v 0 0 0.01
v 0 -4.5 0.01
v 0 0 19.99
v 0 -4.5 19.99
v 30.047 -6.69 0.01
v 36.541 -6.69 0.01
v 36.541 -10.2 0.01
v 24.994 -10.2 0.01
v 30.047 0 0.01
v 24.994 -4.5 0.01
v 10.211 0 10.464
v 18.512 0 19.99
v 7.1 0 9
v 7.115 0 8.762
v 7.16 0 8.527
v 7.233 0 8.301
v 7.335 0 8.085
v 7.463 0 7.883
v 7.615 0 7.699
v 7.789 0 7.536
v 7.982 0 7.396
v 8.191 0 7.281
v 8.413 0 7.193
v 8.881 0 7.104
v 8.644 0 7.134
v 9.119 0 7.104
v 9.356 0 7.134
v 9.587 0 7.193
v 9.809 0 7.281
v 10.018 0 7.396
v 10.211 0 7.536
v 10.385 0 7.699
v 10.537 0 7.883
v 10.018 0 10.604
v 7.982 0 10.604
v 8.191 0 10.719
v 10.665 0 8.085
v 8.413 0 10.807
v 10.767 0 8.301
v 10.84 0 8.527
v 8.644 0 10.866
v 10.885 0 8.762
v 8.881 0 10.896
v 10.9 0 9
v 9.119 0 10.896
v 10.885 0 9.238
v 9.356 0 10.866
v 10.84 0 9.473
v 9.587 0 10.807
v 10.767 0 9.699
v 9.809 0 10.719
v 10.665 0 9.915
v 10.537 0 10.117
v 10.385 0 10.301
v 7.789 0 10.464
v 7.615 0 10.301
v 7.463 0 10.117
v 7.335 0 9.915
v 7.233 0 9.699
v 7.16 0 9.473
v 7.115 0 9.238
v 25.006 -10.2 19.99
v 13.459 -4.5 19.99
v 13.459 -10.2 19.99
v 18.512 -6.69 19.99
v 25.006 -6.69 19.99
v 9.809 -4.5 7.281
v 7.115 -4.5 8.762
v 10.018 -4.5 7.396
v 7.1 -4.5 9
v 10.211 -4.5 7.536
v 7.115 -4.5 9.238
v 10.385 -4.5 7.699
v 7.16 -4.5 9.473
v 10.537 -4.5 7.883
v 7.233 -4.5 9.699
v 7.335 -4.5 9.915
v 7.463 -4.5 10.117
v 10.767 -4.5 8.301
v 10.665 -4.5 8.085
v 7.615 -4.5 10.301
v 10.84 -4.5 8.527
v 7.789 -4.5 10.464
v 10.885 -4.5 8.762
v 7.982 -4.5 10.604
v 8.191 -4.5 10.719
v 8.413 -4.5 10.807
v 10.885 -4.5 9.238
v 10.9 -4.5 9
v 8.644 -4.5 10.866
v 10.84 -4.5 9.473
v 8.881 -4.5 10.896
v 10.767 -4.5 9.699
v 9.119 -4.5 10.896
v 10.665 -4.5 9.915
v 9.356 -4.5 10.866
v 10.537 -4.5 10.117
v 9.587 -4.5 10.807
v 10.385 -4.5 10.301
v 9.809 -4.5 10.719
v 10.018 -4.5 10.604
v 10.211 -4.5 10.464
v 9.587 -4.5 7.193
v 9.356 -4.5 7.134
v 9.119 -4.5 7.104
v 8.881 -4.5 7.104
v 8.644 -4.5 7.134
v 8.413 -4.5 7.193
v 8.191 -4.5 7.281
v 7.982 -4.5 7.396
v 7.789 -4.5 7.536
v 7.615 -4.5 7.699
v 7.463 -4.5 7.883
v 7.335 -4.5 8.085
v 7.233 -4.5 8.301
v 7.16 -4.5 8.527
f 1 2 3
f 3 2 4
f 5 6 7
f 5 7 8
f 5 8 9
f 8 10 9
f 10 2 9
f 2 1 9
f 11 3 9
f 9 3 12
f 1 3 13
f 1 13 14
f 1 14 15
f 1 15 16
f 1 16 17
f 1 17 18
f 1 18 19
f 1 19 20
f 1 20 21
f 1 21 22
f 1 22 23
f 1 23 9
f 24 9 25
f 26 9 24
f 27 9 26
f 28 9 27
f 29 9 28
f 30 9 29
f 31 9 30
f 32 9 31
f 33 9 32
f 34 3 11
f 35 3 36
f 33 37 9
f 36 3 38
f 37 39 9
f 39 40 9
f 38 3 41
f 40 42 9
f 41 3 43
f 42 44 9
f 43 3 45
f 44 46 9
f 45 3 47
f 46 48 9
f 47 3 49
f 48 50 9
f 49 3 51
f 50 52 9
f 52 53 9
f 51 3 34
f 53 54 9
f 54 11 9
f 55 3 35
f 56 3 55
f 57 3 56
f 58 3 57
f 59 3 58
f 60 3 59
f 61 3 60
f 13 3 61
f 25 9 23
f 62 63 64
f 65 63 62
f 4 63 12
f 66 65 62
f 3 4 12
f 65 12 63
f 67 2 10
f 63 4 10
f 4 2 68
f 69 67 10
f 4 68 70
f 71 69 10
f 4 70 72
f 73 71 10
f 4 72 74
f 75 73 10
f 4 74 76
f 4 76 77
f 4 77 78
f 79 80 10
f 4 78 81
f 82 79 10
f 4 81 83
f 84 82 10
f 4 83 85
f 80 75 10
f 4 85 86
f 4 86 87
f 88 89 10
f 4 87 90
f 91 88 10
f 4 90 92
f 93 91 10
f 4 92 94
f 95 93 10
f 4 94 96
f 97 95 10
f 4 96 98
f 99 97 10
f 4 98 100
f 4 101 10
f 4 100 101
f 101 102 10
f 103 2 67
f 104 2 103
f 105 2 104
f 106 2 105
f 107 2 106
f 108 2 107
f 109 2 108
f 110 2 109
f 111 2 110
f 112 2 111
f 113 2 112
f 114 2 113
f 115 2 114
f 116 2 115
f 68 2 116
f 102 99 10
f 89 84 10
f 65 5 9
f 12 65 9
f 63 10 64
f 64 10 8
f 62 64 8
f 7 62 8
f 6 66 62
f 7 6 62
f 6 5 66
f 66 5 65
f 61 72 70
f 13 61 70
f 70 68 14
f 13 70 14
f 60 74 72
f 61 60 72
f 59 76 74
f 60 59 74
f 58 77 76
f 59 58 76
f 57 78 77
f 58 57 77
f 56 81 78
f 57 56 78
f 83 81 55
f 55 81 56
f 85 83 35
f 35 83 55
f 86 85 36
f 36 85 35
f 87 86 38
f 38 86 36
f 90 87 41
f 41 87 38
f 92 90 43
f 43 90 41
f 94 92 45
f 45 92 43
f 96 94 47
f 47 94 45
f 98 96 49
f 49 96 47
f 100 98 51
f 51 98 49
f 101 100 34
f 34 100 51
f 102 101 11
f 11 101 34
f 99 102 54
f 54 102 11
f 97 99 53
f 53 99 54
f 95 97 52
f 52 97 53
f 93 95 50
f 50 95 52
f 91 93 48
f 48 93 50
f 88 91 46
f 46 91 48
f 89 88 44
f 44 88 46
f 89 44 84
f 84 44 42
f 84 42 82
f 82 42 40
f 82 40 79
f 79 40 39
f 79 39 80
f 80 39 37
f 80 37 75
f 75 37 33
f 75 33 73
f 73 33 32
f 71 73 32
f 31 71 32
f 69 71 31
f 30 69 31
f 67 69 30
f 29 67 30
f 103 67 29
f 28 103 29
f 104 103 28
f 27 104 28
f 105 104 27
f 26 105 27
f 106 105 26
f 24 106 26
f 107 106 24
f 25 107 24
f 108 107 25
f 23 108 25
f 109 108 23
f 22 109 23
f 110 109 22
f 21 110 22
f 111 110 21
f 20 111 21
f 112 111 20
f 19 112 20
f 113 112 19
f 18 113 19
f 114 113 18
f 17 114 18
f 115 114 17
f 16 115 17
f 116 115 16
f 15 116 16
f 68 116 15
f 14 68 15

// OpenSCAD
$fn=50;
//cube([30,2,10]);
rotate([90,0,0])
difference()
{
union(){
cube([40,20,4.5]);
translate([25,10,6.7])rotate([0,0,30])cube([10,30,7],center=true);}
translate([9,9,-1])cylinder(r=1.9,h=20);
translate([41.6,20,6.7/2-0.01])rotate([0,0,30])cube([40,40,6.7],center=true);
translate([0,-9.99,-1])cube([40,10,20]);
translate([0,19.99,-1])cube([40,10,20]);

}
